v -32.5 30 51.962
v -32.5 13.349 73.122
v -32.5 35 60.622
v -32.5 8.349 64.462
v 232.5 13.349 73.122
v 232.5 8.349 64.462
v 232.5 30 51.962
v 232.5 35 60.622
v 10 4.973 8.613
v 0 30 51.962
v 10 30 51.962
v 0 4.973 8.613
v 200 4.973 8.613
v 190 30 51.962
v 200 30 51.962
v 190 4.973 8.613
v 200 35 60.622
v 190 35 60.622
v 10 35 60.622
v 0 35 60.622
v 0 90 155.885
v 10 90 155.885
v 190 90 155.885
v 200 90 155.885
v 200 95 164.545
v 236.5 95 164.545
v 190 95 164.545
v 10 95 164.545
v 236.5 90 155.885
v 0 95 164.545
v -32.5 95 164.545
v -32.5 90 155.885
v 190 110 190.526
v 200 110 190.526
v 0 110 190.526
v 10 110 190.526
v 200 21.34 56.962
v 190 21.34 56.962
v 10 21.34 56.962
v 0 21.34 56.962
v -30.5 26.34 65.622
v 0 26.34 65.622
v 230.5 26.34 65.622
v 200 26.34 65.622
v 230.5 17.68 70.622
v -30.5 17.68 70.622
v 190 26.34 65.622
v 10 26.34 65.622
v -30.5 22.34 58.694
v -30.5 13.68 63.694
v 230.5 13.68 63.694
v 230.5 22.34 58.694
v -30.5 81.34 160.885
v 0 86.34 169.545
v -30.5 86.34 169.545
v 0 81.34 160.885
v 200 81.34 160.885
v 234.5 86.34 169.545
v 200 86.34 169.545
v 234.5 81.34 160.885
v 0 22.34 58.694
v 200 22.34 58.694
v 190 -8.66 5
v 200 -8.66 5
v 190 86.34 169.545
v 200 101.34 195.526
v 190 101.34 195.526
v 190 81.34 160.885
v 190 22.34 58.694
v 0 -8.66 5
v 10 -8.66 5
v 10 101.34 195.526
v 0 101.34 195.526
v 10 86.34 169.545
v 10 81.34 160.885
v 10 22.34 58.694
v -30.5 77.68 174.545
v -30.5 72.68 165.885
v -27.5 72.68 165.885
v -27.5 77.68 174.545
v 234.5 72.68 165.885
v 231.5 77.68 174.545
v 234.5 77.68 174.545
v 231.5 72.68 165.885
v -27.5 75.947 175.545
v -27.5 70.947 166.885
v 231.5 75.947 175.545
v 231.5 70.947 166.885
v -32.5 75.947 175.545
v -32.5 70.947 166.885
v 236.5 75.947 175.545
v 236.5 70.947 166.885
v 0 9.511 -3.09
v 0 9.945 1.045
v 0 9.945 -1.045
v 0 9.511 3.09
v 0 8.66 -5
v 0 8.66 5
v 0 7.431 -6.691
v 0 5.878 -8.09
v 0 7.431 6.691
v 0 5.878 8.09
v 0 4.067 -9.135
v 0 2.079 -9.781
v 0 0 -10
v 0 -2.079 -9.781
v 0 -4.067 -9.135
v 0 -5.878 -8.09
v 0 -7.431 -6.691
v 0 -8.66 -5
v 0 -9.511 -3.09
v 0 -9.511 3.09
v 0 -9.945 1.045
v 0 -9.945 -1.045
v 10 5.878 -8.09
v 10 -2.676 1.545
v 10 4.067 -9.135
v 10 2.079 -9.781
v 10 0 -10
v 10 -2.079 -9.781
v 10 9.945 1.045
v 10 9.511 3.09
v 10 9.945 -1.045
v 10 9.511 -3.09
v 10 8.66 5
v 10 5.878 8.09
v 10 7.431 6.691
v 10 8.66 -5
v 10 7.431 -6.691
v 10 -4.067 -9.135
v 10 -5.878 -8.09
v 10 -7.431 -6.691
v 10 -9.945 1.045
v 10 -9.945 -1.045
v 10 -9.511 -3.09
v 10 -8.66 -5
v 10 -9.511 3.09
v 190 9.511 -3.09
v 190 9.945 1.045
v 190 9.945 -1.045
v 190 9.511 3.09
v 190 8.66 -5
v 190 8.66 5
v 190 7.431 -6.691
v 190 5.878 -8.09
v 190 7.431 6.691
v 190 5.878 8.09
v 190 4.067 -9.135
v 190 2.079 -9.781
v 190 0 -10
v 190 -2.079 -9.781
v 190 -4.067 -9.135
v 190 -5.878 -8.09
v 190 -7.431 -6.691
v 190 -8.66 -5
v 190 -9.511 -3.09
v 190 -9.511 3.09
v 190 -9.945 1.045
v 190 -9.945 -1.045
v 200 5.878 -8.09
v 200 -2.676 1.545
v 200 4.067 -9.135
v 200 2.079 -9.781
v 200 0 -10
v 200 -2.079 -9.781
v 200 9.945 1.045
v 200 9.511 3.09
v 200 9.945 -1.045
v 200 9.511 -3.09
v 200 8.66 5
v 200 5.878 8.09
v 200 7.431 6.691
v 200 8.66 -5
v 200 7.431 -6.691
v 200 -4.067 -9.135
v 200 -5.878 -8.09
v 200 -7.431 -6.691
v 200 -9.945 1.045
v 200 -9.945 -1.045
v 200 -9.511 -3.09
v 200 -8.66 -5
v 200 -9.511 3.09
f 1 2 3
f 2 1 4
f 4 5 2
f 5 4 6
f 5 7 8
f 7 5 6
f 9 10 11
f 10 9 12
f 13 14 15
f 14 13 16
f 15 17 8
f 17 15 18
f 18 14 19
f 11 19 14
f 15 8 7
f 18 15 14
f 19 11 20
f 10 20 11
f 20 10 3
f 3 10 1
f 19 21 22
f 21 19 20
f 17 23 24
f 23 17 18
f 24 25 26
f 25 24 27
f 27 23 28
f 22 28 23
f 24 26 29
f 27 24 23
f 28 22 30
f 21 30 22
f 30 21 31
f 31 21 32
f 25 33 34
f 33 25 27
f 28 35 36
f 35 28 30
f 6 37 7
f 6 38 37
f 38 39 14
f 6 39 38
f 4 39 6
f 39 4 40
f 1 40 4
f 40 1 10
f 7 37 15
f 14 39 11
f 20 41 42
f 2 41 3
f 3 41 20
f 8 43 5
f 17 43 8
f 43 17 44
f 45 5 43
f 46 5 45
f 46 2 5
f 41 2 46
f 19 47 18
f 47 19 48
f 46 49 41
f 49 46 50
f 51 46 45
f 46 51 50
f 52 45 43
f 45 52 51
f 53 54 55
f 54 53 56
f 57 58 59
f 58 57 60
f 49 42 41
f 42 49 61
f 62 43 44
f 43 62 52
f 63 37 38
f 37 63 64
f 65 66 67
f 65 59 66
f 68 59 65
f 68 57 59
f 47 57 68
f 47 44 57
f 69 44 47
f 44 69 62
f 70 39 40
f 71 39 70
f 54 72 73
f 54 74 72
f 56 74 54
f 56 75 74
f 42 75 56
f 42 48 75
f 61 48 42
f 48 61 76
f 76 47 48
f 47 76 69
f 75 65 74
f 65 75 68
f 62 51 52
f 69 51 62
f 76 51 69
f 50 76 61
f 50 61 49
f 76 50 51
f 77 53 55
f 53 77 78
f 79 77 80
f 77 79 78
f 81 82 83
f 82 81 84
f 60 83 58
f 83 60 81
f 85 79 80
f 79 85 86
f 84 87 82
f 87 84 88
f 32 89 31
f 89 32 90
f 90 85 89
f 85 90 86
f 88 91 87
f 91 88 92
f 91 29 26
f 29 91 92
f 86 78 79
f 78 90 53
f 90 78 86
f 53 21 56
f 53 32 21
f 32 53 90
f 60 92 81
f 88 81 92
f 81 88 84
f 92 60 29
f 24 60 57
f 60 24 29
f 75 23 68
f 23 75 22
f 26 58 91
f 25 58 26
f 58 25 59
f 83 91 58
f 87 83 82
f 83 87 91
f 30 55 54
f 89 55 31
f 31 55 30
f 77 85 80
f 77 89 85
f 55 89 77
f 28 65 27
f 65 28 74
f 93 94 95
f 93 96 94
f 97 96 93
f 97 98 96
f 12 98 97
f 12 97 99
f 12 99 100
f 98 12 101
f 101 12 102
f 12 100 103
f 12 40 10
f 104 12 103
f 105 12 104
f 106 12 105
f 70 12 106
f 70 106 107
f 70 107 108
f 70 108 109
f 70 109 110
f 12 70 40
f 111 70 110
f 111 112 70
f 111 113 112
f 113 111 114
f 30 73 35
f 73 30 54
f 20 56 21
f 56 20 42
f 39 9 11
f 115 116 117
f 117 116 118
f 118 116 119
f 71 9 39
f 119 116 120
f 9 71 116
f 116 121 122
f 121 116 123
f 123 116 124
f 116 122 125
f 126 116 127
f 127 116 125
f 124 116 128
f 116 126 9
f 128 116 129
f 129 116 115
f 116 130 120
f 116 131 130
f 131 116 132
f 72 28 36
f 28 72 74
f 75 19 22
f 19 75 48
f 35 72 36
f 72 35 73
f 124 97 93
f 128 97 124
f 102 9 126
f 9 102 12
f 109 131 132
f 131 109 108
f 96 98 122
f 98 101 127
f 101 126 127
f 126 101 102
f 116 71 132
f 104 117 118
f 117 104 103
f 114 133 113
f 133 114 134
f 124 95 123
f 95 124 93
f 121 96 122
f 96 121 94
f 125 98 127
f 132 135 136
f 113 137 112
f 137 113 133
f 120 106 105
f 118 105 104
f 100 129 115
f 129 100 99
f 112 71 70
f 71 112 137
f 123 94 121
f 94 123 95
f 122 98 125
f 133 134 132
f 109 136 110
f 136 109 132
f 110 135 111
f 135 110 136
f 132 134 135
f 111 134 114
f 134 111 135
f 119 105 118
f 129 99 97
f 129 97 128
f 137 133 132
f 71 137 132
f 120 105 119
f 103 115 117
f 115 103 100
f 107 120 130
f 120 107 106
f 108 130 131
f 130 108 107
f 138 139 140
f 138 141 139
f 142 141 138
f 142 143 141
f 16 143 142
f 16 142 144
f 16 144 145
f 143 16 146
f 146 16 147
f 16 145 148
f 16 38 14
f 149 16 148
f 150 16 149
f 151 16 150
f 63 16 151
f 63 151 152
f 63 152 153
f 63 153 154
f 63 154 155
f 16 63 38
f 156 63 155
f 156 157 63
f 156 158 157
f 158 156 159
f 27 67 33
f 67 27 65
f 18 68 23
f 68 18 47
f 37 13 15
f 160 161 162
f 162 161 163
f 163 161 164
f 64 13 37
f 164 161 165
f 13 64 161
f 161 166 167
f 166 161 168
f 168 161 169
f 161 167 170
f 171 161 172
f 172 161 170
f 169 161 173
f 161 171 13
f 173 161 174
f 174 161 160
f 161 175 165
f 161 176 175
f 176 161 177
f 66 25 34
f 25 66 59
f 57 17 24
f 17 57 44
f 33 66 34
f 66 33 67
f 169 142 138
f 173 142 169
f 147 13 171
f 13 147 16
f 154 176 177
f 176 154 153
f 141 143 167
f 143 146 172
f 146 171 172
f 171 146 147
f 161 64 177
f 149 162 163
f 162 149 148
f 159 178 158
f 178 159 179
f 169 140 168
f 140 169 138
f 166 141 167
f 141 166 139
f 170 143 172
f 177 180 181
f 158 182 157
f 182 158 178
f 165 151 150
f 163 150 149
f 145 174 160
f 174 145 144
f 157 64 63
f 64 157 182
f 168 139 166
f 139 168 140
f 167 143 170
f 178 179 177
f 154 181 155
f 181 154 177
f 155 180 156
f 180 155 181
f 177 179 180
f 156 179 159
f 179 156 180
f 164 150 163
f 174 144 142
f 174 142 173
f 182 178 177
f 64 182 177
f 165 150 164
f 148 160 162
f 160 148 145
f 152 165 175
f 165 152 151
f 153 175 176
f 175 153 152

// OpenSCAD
DIAMETRE_G = 13;
DIAMETRE_D = 16;
LONG_TUBE_G = 130;
LONG_TUBE_D = 120; // droit pour Bertrand
ECART_TUBES = 160;

LONG_SUPPORT = 220; // y
LARG_SUPPORT = 10; // x
PROF_SUPPORT = 10; // z
ECART_SUPPORT = 190;

LONG_HOR = 10; // y
LARG_HOR = 265; // x
PROF_HOR = PROF_SUPPORT; // z

HAUT_HOR_B = 60; // hauteur de la barre du bas.
HAUT_HOR_H = 180; // hauteur de la barre du bas.

use <nuts_and_bolts_v1.95.scad>

module rondVissable(){
        cylinder(h=LARG_SUPPORT, r=10);
    }
module vis(){
    rotate([0,90,0])
        hex_bolt (40, 20, 5, 5, 0.01, 32, 1, "metric", 28);
    }

module barreVerticale(){
    rotate([60,0,0])
        //difference(){
            // barre avec bout rond
            union(){
                    cube([LARG_SUPPORT,LONG_SUPPORT,PROF_SUPPORT]);
                    rotate([0,90,0])
                        rondVissable();
            };  
           // trou de la vis
           //vis();
    //}  
}
/*
translate([-100,0,0])
    vis();*/
    /*translate ([-10, 0, 0]) 
        hex_nut (1/8, 1/4, 3/8, 1/128, 32, 1, "imperial", 28);*/
//hex_bolt (3/8, 2/8, 1/8, 3/8, 1/128, 32, 1, "imperial", 28);


module support() {
    union(){
        // cylindres
    //    translate([DIAMETRE_G/2,0,0])
    //        rotate([90,0,0])
    //            cylinder(d=DIAMETRE_G, h=LONG_TUBE_G, $fn=100);
    //    
    //    translate([ECART_TUBES+DIAMETRE_G/2,0,0])
    //        rotate([90,0,0])
    //            cylinder(d=DIAMETRE_D, h=LONG_TUBE_D, $fn=100);
        
        // barres verticales
        translate([0,0,0])
            barreVerticale();
        
        translate([ECART_SUPPORT,0,0])
            barreVerticale();
        
        // barres horizontales
        
        // barre du bas avec gouttière
        rotate([60,0,0])
            translate([(ECART_SUPPORT+LARG_SUPPORT-LARG_HOR)/2,HAUT_HOR_B,0])
                difference(){
                    cube([LARG_HOR,LONG_HOR,PROF_HOR+15]);
                    translate([2,2,PROF_SUPPORT]){
                        cube([LARG_HOR-4,LONG_HOR-2,PROF_HOR+10-PROF_SUPPORT]);
                    }
                };
        
        // barre du haut avec crochets  
        rotate([60,0,0])
            translate([(ECART_SUPPORT+LARG_SUPPORT-LARG_HOR)/2,HAUT_HOR_H,0])
                difference(){
                cube([LARG_HOR+4,LONG_HOR,PROF_HOR+12]);
                union(){
                    translate([2,-1,PROF_SUPPORT]){
                        cube([LARG_HOR,LONG_HOR+5,10]);
                    }
                    translate([5,-1,PROF_SUPPORT]){
                        cube([LARG_HOR+4-10,LONG_HOR+5,100]);
                }
           
                }
         }
        
        /*rotate([60,0,0])
            translate([LARG_SUPPORT+2,HAUT_HOR_B,0])
                cube([LARG_SUPPORT,LONG_SUPPORT,PROF_SUPPORT]);*/
    }
}
support();
